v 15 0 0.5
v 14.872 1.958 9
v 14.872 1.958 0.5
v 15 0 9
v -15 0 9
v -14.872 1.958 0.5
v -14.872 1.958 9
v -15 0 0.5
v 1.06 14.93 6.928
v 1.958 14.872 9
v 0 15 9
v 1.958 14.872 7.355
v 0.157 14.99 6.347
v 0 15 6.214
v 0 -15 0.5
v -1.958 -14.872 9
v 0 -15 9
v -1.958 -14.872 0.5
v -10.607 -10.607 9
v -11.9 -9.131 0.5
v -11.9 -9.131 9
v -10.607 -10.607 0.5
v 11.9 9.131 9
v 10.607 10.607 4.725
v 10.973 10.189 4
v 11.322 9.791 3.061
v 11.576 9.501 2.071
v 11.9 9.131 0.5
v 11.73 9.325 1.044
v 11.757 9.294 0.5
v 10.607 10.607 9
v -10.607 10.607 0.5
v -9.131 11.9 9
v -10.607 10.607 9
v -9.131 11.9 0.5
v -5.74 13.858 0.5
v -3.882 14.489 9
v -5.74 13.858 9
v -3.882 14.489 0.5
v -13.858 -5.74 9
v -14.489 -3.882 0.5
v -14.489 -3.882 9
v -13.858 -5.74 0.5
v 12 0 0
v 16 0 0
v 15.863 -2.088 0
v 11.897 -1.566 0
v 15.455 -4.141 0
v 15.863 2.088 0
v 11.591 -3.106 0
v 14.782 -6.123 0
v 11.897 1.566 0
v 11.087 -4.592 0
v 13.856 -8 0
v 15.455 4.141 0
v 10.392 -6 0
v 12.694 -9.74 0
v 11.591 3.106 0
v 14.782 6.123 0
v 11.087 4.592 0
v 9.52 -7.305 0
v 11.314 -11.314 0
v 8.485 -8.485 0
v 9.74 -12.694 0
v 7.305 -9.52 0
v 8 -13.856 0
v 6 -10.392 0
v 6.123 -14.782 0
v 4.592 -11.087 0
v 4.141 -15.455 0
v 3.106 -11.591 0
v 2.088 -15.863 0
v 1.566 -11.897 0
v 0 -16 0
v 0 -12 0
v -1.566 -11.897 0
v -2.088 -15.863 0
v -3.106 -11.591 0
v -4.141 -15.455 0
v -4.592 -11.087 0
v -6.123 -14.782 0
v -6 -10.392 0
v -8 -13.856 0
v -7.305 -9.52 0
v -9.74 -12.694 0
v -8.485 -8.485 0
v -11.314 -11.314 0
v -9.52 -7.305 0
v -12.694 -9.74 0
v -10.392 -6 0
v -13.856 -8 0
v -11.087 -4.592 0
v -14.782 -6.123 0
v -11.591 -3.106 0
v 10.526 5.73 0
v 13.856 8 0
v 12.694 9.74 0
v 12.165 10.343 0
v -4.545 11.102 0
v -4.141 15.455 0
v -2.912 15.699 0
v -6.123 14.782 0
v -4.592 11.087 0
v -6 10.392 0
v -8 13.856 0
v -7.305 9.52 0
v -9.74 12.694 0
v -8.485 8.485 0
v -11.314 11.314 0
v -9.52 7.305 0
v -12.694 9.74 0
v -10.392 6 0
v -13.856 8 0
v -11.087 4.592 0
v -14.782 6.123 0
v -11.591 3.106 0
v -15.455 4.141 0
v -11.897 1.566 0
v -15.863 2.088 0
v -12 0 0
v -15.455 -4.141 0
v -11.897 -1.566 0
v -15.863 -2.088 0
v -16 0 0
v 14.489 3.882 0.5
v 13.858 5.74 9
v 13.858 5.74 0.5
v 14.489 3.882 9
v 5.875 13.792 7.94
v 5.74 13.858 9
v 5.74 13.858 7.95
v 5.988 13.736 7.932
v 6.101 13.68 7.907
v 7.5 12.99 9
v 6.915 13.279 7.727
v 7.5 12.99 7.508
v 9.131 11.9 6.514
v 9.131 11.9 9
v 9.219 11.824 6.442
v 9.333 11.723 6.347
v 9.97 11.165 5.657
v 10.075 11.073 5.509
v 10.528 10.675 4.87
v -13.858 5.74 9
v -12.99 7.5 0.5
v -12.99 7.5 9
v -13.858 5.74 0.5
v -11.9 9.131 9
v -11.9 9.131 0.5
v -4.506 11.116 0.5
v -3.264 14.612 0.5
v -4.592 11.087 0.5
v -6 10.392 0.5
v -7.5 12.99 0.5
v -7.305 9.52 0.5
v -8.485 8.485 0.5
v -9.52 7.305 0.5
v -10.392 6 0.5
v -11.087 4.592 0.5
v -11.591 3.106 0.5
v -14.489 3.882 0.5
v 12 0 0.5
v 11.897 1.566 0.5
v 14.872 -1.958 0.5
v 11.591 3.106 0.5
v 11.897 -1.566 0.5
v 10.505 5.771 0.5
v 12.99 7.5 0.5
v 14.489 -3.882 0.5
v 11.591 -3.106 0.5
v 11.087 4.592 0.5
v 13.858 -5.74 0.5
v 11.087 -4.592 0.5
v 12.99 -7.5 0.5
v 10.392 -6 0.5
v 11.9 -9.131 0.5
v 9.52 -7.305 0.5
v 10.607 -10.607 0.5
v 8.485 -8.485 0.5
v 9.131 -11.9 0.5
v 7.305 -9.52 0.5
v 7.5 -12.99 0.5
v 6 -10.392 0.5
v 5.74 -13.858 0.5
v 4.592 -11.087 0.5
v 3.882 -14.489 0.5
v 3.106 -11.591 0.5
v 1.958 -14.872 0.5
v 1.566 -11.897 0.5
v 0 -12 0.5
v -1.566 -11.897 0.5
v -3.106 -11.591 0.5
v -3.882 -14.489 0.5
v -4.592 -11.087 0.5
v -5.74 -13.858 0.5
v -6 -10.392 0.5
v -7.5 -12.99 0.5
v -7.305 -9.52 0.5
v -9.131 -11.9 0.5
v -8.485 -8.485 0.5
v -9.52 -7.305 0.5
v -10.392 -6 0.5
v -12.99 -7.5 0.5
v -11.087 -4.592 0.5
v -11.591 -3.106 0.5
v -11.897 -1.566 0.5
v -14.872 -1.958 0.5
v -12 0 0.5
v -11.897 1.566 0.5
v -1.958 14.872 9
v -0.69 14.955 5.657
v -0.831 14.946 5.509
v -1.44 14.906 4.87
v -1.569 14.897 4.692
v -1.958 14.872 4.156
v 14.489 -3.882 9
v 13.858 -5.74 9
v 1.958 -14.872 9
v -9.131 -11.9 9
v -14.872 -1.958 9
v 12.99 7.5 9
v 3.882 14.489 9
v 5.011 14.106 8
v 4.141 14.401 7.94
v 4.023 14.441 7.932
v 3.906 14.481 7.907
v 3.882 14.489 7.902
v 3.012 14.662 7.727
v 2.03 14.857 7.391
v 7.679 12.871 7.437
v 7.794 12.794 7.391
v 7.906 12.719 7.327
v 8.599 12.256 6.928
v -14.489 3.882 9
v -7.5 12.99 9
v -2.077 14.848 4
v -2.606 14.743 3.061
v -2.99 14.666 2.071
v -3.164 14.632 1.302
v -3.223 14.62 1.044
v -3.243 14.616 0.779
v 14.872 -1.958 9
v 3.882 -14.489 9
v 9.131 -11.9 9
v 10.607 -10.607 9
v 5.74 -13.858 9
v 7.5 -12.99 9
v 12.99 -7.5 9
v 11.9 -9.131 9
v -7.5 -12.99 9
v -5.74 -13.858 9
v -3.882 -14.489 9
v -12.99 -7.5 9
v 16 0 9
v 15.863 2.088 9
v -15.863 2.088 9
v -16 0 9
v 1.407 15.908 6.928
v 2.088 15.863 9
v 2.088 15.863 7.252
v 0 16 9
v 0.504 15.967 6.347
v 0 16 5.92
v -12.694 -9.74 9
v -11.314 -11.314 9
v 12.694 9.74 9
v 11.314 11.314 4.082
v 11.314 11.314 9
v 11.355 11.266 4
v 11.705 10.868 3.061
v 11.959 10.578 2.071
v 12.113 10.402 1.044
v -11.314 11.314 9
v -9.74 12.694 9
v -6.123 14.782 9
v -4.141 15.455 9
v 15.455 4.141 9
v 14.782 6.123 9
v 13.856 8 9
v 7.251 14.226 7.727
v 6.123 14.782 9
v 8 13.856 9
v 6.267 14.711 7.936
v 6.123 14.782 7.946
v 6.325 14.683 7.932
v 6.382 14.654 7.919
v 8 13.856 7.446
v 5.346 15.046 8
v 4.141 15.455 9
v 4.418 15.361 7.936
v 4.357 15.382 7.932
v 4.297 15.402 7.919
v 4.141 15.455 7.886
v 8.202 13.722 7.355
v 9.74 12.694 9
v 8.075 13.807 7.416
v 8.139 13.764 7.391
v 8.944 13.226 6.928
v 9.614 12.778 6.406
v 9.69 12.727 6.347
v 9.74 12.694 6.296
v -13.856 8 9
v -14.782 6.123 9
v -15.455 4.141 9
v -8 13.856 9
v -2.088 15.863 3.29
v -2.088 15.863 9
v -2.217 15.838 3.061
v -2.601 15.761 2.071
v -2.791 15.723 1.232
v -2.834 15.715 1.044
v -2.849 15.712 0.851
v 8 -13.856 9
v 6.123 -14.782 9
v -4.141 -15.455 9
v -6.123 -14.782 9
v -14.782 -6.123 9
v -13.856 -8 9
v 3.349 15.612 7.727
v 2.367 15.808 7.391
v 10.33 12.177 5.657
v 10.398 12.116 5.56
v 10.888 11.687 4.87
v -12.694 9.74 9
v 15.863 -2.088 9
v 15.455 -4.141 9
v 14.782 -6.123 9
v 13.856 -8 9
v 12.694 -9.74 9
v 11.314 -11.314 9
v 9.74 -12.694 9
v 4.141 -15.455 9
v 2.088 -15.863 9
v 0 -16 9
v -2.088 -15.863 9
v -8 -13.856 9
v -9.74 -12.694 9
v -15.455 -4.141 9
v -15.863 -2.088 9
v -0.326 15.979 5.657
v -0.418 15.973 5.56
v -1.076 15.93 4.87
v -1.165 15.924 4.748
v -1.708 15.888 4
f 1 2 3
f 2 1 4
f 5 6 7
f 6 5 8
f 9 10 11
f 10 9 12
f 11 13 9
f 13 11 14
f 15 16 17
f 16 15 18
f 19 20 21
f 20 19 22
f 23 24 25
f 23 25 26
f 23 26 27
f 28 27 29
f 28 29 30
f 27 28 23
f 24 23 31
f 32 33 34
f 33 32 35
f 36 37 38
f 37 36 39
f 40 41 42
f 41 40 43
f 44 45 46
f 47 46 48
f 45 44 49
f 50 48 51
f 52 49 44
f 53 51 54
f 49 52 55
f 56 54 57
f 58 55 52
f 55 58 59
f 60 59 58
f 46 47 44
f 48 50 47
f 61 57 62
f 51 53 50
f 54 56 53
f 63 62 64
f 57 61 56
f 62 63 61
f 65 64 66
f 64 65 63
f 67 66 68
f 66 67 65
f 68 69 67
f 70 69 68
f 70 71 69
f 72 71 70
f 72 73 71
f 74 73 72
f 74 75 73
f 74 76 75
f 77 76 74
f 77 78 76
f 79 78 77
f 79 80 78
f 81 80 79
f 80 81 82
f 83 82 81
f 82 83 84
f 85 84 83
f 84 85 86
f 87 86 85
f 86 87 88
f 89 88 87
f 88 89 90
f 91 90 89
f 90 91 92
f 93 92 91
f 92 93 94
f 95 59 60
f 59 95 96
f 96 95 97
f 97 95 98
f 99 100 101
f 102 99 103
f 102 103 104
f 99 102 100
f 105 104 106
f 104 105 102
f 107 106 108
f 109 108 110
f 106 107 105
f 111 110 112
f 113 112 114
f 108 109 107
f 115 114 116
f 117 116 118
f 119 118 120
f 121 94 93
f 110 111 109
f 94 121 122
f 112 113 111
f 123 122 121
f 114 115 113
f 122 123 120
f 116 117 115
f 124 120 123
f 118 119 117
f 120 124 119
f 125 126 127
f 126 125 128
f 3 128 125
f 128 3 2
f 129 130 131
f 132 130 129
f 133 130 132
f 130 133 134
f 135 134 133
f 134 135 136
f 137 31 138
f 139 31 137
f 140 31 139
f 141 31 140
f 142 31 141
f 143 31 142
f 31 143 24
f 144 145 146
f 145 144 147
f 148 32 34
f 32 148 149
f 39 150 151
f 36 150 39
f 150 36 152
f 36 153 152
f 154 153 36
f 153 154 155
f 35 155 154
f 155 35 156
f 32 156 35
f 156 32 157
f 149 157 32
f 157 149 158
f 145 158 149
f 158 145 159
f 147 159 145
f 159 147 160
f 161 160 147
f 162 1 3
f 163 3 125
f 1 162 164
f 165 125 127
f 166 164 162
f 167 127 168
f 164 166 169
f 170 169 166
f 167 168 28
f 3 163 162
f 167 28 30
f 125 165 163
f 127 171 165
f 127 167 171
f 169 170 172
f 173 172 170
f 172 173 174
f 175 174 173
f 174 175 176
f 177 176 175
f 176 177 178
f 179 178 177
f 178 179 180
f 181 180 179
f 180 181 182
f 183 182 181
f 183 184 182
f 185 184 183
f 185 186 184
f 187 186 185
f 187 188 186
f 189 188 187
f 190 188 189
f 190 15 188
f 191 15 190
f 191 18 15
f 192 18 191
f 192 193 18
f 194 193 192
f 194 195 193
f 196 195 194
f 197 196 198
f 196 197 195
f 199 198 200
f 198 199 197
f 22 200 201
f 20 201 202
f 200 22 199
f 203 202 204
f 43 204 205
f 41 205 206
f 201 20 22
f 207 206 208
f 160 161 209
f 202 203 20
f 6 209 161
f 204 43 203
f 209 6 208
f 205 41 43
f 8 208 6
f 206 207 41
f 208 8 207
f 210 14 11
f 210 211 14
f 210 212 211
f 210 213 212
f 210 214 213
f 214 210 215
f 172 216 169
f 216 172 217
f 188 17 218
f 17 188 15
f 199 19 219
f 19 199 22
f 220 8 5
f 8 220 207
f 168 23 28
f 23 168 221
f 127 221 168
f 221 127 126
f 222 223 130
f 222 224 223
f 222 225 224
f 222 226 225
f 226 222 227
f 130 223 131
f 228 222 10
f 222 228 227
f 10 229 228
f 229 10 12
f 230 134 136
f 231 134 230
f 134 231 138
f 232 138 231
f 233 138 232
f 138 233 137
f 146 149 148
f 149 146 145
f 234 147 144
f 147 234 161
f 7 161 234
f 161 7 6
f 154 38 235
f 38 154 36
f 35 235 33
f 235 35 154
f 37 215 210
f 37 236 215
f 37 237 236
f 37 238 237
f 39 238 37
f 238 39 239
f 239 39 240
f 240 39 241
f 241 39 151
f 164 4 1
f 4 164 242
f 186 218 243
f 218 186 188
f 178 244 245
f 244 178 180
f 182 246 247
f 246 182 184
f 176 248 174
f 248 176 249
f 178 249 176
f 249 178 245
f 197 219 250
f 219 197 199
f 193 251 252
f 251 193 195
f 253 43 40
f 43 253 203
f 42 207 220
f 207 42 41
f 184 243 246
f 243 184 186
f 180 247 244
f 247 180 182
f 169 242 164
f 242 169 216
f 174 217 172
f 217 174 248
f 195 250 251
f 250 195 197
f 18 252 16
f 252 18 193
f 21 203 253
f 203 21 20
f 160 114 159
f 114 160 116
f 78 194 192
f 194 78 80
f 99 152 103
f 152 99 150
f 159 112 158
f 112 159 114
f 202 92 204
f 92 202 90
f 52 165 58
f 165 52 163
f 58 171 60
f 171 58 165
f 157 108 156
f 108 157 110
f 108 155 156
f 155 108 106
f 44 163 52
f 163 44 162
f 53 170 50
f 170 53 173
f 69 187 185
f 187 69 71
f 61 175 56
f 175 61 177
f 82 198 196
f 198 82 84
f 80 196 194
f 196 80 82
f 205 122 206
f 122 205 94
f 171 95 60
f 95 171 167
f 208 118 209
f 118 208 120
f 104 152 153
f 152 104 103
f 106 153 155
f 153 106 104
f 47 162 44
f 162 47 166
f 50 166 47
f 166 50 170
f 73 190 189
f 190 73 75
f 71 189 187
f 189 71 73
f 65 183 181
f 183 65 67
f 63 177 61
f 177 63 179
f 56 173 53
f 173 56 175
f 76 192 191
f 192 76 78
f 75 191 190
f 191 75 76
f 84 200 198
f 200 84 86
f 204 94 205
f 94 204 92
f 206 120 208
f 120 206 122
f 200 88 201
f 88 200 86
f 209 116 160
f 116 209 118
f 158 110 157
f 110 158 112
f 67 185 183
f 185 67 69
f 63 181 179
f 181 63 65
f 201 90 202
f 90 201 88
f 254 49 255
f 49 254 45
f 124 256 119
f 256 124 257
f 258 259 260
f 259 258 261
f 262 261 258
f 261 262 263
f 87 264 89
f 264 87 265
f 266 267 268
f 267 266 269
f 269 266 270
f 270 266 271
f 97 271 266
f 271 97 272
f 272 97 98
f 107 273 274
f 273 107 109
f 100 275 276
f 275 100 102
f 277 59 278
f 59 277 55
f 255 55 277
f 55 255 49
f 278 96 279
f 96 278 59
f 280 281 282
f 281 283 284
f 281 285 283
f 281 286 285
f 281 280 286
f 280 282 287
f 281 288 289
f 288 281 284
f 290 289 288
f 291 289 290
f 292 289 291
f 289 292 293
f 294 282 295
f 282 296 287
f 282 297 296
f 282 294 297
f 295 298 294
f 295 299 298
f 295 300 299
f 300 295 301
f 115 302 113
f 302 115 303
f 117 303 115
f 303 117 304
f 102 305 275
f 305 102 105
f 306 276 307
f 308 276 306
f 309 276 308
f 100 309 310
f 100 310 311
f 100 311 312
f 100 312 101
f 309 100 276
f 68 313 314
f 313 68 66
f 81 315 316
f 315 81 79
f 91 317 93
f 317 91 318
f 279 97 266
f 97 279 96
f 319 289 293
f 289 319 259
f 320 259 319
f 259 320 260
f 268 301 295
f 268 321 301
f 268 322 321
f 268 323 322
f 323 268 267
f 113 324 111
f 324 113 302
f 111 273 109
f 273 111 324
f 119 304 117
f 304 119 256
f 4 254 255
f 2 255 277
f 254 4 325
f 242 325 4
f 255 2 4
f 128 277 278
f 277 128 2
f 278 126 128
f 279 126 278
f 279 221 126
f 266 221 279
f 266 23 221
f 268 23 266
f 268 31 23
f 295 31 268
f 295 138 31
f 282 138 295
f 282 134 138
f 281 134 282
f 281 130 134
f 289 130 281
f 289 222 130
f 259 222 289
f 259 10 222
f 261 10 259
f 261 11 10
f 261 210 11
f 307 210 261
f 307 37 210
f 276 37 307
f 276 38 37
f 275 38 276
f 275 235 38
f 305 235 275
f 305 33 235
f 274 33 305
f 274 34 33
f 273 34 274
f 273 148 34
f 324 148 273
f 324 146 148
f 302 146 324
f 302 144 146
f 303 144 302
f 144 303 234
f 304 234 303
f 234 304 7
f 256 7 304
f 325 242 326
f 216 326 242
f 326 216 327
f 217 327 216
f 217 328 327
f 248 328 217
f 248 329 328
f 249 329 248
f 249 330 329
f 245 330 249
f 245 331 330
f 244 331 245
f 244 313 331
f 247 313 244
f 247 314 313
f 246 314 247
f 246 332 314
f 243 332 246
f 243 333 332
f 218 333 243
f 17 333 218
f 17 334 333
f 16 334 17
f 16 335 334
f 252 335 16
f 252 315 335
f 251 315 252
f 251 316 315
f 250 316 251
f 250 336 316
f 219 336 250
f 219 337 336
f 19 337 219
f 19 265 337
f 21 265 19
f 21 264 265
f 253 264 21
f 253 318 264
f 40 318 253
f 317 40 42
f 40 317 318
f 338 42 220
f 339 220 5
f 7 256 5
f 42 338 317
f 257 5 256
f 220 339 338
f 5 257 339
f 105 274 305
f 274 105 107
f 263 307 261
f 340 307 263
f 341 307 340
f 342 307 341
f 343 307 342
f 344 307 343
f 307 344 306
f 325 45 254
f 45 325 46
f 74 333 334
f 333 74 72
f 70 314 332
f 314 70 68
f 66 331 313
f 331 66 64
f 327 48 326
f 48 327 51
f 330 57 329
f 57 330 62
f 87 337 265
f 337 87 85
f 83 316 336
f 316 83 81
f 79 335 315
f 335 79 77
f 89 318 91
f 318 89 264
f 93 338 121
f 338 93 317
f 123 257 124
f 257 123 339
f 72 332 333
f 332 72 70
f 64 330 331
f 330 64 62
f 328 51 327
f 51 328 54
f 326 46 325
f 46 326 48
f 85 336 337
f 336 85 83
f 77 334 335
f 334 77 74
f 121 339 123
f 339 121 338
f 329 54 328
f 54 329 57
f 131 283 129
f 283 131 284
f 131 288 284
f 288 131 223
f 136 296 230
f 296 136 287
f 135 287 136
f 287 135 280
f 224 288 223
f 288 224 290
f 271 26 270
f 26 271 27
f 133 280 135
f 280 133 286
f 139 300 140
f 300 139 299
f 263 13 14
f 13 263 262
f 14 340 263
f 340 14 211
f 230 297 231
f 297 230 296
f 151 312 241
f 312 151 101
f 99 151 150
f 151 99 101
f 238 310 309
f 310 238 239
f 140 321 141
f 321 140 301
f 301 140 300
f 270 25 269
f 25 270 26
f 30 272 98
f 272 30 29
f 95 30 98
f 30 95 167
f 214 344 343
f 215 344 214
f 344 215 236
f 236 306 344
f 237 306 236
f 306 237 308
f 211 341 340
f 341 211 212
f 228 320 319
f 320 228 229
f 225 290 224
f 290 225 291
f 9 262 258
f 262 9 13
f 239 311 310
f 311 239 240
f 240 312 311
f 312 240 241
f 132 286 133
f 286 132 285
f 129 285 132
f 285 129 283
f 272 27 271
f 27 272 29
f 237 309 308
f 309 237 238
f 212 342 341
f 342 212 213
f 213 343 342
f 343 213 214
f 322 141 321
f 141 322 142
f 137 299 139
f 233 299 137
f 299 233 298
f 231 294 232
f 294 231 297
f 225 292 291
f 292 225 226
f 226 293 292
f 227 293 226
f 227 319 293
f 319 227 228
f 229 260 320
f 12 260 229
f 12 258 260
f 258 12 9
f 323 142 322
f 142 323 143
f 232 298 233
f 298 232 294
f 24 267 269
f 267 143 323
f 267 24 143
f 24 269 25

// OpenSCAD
// file: ../build_environments.scad
// build_environments.scad: modules to build level sections
//

module pool(diameter=10.0, wall_height=2.0, step_width=3.0, connections=[])
{
    difference() {
        union() {
        difference() {
            cylinder(h=0.5,r1=diameter+step_width,r2=diameter+step_width,$fn=48);
            translate([0,0,-0.1])
                cylinder(h=0.7,r1=diameter,r2=diameter,$fn=48);
        }
        difference() {
            cylinder(h=wall_height,r1=diameter+step_width+1.0,r2=diameter+step_width+1.0,$fn=48);
            translate([0,0,-0.1])
                cylinder(h=wall_height+0.2,r1=diameter+step_width,r2=diameter+step_width,$fn=48);
        }
        }
    
        for (c = connections)
        {
            rotate([0,90,0]) {
                angle = atan2(c[1],c[0]);
                rotate([-angle,0,0]) {
                    cylinder(h=diameter+5.0,r1=c[2],r2=c[2],$fn=48);
                }
            }
        }
    }
}

module straight(length=10.0, width=2.0, dy1=0.0, dy2=0.0, dz=0.0)
{
    dims = [0, 0, 0, 0, 0, (dz/length)];
    matrix = [
        [ 1, dims[0], dims[1], 0 ],
        [ dims[2], 1, dims[4], 0 ],
        [ dims[5], dims[3], 1, 0 ],
        [ 0, 0, 0, 1 ]
    ];
    multmatrix(matrix)
    difference() {
        translate([dy1,0,0])
        union() {
            rotate([0,90,0]) {
                difference() {
                    cylinder(h=(length-dy1-dy2),r1=width+1.0,r2=width+1.0,$fn=24);
                    translate([0,0,-0.1])
                        cylinder(h=(length-dy1-dy2+0.2),r1=width,r2=width,$fn=24);
                }
                difference() {
                    cylinder(h=1.0,r1=width+2.0,r2=width+2.0,$fn=24);
                    translate([0,0,-0.1])
                        cylinder(h=1.2,r1=width,r2=width,$fn=24);
                }
                translate([0,0,(length-dy1-dy2)-1.0]) {
                    difference() {
                        cylinder(h=1.0,r1=width+2.0,r2=width+2.0,$fn=24);
                        translate([0,0,-0.1])
                            cylinder(h=1.2,r1=width,r2=width,$fn=24);
                    }
                }
            }
        }
        translate([0,0,-(2*width+4.0)/2])
            cube([3*length,3*length,2*width+4.0],center=true);
    }
}

module curve(p0=[0,0], center=[0,0], dir=1, angle=0.0, width=2.0)
{
    radius = sqrt((p0[0]-center[0])*(p0[0]-center[0]) + (p0[1]-center[1])*(p0[1]-center[1]));
    if (dir == 0) {
        difference() {
            rotate([0,0,-90])
            difference() {
                rotate_extrude(angle = angle, convexity = 10, $fn=32)
                    translate([radius, 0, 0])
                        circle(r = width+1.0,$fn=24);
                rotate([0,0,-1.0])
                    rotate_extrude(angle = angle+2.0, convexity = 10, $fn=32)
                        translate([radius, 0, 0])
                            circle(r = width,$fn=24);
            }
            translate([0,0,-(2*width+4.0)/2])
                cube([5*radius,5*radius,2*width+4.0],center=true);
        }
    }
    else {
        difference() {
            rotate([0,0,90])
            difference() {
                rotate_extrude(angle = -angle, convexity = 10, $fn=32)
                    translate([radius, 0, 0])
                        circle(r = width+1.0,$fn=24);
                rotate([0,0,1.0])
                    rotate_extrude(angle = -angle-2.0, convexity = 10, $fn=32)
                        translate([radius, 0, 0])
                            circle(r = width,$fn=24);
            }
            translate([0,0,-(2*width+4.0)/2])
                cube([5*radius,5*radius,2*width+4.0],center=true);
        }
    }

}

// test pool
//pool(diameter=12.0000, wall_height=3.0000, step_width=3.0000, connections=[[0.0000,-26.0000,2.0000], [23.6074,0.0000,2.0000]]);

// test straight, slope
//straight(length=26.0000, width=2.0000, dy1=11.8322, dy2=6.7082, dz=0.0000);
//straight(length=29.1549, width=12.0000, dy1=0.0000, dy2=0.0000, dz=-15.0000);

// test curve
//curve(p0=[23.6074, 0.0000], center=[23.6074, 5.0000], dir=0, angle=60.1011, width=2.0000);
//curve(p0=[33.6426, 12.4219], center=[37.9771, 9.9295], dir=1, angle=120.4627, width=2.0000);
// main file
use <../build_environments.scad>;
pool(diameter=12.0000, wall_height=9.0000, step_width=3.0000, connections=[[13.4749,37.9273,8.0000]]);
